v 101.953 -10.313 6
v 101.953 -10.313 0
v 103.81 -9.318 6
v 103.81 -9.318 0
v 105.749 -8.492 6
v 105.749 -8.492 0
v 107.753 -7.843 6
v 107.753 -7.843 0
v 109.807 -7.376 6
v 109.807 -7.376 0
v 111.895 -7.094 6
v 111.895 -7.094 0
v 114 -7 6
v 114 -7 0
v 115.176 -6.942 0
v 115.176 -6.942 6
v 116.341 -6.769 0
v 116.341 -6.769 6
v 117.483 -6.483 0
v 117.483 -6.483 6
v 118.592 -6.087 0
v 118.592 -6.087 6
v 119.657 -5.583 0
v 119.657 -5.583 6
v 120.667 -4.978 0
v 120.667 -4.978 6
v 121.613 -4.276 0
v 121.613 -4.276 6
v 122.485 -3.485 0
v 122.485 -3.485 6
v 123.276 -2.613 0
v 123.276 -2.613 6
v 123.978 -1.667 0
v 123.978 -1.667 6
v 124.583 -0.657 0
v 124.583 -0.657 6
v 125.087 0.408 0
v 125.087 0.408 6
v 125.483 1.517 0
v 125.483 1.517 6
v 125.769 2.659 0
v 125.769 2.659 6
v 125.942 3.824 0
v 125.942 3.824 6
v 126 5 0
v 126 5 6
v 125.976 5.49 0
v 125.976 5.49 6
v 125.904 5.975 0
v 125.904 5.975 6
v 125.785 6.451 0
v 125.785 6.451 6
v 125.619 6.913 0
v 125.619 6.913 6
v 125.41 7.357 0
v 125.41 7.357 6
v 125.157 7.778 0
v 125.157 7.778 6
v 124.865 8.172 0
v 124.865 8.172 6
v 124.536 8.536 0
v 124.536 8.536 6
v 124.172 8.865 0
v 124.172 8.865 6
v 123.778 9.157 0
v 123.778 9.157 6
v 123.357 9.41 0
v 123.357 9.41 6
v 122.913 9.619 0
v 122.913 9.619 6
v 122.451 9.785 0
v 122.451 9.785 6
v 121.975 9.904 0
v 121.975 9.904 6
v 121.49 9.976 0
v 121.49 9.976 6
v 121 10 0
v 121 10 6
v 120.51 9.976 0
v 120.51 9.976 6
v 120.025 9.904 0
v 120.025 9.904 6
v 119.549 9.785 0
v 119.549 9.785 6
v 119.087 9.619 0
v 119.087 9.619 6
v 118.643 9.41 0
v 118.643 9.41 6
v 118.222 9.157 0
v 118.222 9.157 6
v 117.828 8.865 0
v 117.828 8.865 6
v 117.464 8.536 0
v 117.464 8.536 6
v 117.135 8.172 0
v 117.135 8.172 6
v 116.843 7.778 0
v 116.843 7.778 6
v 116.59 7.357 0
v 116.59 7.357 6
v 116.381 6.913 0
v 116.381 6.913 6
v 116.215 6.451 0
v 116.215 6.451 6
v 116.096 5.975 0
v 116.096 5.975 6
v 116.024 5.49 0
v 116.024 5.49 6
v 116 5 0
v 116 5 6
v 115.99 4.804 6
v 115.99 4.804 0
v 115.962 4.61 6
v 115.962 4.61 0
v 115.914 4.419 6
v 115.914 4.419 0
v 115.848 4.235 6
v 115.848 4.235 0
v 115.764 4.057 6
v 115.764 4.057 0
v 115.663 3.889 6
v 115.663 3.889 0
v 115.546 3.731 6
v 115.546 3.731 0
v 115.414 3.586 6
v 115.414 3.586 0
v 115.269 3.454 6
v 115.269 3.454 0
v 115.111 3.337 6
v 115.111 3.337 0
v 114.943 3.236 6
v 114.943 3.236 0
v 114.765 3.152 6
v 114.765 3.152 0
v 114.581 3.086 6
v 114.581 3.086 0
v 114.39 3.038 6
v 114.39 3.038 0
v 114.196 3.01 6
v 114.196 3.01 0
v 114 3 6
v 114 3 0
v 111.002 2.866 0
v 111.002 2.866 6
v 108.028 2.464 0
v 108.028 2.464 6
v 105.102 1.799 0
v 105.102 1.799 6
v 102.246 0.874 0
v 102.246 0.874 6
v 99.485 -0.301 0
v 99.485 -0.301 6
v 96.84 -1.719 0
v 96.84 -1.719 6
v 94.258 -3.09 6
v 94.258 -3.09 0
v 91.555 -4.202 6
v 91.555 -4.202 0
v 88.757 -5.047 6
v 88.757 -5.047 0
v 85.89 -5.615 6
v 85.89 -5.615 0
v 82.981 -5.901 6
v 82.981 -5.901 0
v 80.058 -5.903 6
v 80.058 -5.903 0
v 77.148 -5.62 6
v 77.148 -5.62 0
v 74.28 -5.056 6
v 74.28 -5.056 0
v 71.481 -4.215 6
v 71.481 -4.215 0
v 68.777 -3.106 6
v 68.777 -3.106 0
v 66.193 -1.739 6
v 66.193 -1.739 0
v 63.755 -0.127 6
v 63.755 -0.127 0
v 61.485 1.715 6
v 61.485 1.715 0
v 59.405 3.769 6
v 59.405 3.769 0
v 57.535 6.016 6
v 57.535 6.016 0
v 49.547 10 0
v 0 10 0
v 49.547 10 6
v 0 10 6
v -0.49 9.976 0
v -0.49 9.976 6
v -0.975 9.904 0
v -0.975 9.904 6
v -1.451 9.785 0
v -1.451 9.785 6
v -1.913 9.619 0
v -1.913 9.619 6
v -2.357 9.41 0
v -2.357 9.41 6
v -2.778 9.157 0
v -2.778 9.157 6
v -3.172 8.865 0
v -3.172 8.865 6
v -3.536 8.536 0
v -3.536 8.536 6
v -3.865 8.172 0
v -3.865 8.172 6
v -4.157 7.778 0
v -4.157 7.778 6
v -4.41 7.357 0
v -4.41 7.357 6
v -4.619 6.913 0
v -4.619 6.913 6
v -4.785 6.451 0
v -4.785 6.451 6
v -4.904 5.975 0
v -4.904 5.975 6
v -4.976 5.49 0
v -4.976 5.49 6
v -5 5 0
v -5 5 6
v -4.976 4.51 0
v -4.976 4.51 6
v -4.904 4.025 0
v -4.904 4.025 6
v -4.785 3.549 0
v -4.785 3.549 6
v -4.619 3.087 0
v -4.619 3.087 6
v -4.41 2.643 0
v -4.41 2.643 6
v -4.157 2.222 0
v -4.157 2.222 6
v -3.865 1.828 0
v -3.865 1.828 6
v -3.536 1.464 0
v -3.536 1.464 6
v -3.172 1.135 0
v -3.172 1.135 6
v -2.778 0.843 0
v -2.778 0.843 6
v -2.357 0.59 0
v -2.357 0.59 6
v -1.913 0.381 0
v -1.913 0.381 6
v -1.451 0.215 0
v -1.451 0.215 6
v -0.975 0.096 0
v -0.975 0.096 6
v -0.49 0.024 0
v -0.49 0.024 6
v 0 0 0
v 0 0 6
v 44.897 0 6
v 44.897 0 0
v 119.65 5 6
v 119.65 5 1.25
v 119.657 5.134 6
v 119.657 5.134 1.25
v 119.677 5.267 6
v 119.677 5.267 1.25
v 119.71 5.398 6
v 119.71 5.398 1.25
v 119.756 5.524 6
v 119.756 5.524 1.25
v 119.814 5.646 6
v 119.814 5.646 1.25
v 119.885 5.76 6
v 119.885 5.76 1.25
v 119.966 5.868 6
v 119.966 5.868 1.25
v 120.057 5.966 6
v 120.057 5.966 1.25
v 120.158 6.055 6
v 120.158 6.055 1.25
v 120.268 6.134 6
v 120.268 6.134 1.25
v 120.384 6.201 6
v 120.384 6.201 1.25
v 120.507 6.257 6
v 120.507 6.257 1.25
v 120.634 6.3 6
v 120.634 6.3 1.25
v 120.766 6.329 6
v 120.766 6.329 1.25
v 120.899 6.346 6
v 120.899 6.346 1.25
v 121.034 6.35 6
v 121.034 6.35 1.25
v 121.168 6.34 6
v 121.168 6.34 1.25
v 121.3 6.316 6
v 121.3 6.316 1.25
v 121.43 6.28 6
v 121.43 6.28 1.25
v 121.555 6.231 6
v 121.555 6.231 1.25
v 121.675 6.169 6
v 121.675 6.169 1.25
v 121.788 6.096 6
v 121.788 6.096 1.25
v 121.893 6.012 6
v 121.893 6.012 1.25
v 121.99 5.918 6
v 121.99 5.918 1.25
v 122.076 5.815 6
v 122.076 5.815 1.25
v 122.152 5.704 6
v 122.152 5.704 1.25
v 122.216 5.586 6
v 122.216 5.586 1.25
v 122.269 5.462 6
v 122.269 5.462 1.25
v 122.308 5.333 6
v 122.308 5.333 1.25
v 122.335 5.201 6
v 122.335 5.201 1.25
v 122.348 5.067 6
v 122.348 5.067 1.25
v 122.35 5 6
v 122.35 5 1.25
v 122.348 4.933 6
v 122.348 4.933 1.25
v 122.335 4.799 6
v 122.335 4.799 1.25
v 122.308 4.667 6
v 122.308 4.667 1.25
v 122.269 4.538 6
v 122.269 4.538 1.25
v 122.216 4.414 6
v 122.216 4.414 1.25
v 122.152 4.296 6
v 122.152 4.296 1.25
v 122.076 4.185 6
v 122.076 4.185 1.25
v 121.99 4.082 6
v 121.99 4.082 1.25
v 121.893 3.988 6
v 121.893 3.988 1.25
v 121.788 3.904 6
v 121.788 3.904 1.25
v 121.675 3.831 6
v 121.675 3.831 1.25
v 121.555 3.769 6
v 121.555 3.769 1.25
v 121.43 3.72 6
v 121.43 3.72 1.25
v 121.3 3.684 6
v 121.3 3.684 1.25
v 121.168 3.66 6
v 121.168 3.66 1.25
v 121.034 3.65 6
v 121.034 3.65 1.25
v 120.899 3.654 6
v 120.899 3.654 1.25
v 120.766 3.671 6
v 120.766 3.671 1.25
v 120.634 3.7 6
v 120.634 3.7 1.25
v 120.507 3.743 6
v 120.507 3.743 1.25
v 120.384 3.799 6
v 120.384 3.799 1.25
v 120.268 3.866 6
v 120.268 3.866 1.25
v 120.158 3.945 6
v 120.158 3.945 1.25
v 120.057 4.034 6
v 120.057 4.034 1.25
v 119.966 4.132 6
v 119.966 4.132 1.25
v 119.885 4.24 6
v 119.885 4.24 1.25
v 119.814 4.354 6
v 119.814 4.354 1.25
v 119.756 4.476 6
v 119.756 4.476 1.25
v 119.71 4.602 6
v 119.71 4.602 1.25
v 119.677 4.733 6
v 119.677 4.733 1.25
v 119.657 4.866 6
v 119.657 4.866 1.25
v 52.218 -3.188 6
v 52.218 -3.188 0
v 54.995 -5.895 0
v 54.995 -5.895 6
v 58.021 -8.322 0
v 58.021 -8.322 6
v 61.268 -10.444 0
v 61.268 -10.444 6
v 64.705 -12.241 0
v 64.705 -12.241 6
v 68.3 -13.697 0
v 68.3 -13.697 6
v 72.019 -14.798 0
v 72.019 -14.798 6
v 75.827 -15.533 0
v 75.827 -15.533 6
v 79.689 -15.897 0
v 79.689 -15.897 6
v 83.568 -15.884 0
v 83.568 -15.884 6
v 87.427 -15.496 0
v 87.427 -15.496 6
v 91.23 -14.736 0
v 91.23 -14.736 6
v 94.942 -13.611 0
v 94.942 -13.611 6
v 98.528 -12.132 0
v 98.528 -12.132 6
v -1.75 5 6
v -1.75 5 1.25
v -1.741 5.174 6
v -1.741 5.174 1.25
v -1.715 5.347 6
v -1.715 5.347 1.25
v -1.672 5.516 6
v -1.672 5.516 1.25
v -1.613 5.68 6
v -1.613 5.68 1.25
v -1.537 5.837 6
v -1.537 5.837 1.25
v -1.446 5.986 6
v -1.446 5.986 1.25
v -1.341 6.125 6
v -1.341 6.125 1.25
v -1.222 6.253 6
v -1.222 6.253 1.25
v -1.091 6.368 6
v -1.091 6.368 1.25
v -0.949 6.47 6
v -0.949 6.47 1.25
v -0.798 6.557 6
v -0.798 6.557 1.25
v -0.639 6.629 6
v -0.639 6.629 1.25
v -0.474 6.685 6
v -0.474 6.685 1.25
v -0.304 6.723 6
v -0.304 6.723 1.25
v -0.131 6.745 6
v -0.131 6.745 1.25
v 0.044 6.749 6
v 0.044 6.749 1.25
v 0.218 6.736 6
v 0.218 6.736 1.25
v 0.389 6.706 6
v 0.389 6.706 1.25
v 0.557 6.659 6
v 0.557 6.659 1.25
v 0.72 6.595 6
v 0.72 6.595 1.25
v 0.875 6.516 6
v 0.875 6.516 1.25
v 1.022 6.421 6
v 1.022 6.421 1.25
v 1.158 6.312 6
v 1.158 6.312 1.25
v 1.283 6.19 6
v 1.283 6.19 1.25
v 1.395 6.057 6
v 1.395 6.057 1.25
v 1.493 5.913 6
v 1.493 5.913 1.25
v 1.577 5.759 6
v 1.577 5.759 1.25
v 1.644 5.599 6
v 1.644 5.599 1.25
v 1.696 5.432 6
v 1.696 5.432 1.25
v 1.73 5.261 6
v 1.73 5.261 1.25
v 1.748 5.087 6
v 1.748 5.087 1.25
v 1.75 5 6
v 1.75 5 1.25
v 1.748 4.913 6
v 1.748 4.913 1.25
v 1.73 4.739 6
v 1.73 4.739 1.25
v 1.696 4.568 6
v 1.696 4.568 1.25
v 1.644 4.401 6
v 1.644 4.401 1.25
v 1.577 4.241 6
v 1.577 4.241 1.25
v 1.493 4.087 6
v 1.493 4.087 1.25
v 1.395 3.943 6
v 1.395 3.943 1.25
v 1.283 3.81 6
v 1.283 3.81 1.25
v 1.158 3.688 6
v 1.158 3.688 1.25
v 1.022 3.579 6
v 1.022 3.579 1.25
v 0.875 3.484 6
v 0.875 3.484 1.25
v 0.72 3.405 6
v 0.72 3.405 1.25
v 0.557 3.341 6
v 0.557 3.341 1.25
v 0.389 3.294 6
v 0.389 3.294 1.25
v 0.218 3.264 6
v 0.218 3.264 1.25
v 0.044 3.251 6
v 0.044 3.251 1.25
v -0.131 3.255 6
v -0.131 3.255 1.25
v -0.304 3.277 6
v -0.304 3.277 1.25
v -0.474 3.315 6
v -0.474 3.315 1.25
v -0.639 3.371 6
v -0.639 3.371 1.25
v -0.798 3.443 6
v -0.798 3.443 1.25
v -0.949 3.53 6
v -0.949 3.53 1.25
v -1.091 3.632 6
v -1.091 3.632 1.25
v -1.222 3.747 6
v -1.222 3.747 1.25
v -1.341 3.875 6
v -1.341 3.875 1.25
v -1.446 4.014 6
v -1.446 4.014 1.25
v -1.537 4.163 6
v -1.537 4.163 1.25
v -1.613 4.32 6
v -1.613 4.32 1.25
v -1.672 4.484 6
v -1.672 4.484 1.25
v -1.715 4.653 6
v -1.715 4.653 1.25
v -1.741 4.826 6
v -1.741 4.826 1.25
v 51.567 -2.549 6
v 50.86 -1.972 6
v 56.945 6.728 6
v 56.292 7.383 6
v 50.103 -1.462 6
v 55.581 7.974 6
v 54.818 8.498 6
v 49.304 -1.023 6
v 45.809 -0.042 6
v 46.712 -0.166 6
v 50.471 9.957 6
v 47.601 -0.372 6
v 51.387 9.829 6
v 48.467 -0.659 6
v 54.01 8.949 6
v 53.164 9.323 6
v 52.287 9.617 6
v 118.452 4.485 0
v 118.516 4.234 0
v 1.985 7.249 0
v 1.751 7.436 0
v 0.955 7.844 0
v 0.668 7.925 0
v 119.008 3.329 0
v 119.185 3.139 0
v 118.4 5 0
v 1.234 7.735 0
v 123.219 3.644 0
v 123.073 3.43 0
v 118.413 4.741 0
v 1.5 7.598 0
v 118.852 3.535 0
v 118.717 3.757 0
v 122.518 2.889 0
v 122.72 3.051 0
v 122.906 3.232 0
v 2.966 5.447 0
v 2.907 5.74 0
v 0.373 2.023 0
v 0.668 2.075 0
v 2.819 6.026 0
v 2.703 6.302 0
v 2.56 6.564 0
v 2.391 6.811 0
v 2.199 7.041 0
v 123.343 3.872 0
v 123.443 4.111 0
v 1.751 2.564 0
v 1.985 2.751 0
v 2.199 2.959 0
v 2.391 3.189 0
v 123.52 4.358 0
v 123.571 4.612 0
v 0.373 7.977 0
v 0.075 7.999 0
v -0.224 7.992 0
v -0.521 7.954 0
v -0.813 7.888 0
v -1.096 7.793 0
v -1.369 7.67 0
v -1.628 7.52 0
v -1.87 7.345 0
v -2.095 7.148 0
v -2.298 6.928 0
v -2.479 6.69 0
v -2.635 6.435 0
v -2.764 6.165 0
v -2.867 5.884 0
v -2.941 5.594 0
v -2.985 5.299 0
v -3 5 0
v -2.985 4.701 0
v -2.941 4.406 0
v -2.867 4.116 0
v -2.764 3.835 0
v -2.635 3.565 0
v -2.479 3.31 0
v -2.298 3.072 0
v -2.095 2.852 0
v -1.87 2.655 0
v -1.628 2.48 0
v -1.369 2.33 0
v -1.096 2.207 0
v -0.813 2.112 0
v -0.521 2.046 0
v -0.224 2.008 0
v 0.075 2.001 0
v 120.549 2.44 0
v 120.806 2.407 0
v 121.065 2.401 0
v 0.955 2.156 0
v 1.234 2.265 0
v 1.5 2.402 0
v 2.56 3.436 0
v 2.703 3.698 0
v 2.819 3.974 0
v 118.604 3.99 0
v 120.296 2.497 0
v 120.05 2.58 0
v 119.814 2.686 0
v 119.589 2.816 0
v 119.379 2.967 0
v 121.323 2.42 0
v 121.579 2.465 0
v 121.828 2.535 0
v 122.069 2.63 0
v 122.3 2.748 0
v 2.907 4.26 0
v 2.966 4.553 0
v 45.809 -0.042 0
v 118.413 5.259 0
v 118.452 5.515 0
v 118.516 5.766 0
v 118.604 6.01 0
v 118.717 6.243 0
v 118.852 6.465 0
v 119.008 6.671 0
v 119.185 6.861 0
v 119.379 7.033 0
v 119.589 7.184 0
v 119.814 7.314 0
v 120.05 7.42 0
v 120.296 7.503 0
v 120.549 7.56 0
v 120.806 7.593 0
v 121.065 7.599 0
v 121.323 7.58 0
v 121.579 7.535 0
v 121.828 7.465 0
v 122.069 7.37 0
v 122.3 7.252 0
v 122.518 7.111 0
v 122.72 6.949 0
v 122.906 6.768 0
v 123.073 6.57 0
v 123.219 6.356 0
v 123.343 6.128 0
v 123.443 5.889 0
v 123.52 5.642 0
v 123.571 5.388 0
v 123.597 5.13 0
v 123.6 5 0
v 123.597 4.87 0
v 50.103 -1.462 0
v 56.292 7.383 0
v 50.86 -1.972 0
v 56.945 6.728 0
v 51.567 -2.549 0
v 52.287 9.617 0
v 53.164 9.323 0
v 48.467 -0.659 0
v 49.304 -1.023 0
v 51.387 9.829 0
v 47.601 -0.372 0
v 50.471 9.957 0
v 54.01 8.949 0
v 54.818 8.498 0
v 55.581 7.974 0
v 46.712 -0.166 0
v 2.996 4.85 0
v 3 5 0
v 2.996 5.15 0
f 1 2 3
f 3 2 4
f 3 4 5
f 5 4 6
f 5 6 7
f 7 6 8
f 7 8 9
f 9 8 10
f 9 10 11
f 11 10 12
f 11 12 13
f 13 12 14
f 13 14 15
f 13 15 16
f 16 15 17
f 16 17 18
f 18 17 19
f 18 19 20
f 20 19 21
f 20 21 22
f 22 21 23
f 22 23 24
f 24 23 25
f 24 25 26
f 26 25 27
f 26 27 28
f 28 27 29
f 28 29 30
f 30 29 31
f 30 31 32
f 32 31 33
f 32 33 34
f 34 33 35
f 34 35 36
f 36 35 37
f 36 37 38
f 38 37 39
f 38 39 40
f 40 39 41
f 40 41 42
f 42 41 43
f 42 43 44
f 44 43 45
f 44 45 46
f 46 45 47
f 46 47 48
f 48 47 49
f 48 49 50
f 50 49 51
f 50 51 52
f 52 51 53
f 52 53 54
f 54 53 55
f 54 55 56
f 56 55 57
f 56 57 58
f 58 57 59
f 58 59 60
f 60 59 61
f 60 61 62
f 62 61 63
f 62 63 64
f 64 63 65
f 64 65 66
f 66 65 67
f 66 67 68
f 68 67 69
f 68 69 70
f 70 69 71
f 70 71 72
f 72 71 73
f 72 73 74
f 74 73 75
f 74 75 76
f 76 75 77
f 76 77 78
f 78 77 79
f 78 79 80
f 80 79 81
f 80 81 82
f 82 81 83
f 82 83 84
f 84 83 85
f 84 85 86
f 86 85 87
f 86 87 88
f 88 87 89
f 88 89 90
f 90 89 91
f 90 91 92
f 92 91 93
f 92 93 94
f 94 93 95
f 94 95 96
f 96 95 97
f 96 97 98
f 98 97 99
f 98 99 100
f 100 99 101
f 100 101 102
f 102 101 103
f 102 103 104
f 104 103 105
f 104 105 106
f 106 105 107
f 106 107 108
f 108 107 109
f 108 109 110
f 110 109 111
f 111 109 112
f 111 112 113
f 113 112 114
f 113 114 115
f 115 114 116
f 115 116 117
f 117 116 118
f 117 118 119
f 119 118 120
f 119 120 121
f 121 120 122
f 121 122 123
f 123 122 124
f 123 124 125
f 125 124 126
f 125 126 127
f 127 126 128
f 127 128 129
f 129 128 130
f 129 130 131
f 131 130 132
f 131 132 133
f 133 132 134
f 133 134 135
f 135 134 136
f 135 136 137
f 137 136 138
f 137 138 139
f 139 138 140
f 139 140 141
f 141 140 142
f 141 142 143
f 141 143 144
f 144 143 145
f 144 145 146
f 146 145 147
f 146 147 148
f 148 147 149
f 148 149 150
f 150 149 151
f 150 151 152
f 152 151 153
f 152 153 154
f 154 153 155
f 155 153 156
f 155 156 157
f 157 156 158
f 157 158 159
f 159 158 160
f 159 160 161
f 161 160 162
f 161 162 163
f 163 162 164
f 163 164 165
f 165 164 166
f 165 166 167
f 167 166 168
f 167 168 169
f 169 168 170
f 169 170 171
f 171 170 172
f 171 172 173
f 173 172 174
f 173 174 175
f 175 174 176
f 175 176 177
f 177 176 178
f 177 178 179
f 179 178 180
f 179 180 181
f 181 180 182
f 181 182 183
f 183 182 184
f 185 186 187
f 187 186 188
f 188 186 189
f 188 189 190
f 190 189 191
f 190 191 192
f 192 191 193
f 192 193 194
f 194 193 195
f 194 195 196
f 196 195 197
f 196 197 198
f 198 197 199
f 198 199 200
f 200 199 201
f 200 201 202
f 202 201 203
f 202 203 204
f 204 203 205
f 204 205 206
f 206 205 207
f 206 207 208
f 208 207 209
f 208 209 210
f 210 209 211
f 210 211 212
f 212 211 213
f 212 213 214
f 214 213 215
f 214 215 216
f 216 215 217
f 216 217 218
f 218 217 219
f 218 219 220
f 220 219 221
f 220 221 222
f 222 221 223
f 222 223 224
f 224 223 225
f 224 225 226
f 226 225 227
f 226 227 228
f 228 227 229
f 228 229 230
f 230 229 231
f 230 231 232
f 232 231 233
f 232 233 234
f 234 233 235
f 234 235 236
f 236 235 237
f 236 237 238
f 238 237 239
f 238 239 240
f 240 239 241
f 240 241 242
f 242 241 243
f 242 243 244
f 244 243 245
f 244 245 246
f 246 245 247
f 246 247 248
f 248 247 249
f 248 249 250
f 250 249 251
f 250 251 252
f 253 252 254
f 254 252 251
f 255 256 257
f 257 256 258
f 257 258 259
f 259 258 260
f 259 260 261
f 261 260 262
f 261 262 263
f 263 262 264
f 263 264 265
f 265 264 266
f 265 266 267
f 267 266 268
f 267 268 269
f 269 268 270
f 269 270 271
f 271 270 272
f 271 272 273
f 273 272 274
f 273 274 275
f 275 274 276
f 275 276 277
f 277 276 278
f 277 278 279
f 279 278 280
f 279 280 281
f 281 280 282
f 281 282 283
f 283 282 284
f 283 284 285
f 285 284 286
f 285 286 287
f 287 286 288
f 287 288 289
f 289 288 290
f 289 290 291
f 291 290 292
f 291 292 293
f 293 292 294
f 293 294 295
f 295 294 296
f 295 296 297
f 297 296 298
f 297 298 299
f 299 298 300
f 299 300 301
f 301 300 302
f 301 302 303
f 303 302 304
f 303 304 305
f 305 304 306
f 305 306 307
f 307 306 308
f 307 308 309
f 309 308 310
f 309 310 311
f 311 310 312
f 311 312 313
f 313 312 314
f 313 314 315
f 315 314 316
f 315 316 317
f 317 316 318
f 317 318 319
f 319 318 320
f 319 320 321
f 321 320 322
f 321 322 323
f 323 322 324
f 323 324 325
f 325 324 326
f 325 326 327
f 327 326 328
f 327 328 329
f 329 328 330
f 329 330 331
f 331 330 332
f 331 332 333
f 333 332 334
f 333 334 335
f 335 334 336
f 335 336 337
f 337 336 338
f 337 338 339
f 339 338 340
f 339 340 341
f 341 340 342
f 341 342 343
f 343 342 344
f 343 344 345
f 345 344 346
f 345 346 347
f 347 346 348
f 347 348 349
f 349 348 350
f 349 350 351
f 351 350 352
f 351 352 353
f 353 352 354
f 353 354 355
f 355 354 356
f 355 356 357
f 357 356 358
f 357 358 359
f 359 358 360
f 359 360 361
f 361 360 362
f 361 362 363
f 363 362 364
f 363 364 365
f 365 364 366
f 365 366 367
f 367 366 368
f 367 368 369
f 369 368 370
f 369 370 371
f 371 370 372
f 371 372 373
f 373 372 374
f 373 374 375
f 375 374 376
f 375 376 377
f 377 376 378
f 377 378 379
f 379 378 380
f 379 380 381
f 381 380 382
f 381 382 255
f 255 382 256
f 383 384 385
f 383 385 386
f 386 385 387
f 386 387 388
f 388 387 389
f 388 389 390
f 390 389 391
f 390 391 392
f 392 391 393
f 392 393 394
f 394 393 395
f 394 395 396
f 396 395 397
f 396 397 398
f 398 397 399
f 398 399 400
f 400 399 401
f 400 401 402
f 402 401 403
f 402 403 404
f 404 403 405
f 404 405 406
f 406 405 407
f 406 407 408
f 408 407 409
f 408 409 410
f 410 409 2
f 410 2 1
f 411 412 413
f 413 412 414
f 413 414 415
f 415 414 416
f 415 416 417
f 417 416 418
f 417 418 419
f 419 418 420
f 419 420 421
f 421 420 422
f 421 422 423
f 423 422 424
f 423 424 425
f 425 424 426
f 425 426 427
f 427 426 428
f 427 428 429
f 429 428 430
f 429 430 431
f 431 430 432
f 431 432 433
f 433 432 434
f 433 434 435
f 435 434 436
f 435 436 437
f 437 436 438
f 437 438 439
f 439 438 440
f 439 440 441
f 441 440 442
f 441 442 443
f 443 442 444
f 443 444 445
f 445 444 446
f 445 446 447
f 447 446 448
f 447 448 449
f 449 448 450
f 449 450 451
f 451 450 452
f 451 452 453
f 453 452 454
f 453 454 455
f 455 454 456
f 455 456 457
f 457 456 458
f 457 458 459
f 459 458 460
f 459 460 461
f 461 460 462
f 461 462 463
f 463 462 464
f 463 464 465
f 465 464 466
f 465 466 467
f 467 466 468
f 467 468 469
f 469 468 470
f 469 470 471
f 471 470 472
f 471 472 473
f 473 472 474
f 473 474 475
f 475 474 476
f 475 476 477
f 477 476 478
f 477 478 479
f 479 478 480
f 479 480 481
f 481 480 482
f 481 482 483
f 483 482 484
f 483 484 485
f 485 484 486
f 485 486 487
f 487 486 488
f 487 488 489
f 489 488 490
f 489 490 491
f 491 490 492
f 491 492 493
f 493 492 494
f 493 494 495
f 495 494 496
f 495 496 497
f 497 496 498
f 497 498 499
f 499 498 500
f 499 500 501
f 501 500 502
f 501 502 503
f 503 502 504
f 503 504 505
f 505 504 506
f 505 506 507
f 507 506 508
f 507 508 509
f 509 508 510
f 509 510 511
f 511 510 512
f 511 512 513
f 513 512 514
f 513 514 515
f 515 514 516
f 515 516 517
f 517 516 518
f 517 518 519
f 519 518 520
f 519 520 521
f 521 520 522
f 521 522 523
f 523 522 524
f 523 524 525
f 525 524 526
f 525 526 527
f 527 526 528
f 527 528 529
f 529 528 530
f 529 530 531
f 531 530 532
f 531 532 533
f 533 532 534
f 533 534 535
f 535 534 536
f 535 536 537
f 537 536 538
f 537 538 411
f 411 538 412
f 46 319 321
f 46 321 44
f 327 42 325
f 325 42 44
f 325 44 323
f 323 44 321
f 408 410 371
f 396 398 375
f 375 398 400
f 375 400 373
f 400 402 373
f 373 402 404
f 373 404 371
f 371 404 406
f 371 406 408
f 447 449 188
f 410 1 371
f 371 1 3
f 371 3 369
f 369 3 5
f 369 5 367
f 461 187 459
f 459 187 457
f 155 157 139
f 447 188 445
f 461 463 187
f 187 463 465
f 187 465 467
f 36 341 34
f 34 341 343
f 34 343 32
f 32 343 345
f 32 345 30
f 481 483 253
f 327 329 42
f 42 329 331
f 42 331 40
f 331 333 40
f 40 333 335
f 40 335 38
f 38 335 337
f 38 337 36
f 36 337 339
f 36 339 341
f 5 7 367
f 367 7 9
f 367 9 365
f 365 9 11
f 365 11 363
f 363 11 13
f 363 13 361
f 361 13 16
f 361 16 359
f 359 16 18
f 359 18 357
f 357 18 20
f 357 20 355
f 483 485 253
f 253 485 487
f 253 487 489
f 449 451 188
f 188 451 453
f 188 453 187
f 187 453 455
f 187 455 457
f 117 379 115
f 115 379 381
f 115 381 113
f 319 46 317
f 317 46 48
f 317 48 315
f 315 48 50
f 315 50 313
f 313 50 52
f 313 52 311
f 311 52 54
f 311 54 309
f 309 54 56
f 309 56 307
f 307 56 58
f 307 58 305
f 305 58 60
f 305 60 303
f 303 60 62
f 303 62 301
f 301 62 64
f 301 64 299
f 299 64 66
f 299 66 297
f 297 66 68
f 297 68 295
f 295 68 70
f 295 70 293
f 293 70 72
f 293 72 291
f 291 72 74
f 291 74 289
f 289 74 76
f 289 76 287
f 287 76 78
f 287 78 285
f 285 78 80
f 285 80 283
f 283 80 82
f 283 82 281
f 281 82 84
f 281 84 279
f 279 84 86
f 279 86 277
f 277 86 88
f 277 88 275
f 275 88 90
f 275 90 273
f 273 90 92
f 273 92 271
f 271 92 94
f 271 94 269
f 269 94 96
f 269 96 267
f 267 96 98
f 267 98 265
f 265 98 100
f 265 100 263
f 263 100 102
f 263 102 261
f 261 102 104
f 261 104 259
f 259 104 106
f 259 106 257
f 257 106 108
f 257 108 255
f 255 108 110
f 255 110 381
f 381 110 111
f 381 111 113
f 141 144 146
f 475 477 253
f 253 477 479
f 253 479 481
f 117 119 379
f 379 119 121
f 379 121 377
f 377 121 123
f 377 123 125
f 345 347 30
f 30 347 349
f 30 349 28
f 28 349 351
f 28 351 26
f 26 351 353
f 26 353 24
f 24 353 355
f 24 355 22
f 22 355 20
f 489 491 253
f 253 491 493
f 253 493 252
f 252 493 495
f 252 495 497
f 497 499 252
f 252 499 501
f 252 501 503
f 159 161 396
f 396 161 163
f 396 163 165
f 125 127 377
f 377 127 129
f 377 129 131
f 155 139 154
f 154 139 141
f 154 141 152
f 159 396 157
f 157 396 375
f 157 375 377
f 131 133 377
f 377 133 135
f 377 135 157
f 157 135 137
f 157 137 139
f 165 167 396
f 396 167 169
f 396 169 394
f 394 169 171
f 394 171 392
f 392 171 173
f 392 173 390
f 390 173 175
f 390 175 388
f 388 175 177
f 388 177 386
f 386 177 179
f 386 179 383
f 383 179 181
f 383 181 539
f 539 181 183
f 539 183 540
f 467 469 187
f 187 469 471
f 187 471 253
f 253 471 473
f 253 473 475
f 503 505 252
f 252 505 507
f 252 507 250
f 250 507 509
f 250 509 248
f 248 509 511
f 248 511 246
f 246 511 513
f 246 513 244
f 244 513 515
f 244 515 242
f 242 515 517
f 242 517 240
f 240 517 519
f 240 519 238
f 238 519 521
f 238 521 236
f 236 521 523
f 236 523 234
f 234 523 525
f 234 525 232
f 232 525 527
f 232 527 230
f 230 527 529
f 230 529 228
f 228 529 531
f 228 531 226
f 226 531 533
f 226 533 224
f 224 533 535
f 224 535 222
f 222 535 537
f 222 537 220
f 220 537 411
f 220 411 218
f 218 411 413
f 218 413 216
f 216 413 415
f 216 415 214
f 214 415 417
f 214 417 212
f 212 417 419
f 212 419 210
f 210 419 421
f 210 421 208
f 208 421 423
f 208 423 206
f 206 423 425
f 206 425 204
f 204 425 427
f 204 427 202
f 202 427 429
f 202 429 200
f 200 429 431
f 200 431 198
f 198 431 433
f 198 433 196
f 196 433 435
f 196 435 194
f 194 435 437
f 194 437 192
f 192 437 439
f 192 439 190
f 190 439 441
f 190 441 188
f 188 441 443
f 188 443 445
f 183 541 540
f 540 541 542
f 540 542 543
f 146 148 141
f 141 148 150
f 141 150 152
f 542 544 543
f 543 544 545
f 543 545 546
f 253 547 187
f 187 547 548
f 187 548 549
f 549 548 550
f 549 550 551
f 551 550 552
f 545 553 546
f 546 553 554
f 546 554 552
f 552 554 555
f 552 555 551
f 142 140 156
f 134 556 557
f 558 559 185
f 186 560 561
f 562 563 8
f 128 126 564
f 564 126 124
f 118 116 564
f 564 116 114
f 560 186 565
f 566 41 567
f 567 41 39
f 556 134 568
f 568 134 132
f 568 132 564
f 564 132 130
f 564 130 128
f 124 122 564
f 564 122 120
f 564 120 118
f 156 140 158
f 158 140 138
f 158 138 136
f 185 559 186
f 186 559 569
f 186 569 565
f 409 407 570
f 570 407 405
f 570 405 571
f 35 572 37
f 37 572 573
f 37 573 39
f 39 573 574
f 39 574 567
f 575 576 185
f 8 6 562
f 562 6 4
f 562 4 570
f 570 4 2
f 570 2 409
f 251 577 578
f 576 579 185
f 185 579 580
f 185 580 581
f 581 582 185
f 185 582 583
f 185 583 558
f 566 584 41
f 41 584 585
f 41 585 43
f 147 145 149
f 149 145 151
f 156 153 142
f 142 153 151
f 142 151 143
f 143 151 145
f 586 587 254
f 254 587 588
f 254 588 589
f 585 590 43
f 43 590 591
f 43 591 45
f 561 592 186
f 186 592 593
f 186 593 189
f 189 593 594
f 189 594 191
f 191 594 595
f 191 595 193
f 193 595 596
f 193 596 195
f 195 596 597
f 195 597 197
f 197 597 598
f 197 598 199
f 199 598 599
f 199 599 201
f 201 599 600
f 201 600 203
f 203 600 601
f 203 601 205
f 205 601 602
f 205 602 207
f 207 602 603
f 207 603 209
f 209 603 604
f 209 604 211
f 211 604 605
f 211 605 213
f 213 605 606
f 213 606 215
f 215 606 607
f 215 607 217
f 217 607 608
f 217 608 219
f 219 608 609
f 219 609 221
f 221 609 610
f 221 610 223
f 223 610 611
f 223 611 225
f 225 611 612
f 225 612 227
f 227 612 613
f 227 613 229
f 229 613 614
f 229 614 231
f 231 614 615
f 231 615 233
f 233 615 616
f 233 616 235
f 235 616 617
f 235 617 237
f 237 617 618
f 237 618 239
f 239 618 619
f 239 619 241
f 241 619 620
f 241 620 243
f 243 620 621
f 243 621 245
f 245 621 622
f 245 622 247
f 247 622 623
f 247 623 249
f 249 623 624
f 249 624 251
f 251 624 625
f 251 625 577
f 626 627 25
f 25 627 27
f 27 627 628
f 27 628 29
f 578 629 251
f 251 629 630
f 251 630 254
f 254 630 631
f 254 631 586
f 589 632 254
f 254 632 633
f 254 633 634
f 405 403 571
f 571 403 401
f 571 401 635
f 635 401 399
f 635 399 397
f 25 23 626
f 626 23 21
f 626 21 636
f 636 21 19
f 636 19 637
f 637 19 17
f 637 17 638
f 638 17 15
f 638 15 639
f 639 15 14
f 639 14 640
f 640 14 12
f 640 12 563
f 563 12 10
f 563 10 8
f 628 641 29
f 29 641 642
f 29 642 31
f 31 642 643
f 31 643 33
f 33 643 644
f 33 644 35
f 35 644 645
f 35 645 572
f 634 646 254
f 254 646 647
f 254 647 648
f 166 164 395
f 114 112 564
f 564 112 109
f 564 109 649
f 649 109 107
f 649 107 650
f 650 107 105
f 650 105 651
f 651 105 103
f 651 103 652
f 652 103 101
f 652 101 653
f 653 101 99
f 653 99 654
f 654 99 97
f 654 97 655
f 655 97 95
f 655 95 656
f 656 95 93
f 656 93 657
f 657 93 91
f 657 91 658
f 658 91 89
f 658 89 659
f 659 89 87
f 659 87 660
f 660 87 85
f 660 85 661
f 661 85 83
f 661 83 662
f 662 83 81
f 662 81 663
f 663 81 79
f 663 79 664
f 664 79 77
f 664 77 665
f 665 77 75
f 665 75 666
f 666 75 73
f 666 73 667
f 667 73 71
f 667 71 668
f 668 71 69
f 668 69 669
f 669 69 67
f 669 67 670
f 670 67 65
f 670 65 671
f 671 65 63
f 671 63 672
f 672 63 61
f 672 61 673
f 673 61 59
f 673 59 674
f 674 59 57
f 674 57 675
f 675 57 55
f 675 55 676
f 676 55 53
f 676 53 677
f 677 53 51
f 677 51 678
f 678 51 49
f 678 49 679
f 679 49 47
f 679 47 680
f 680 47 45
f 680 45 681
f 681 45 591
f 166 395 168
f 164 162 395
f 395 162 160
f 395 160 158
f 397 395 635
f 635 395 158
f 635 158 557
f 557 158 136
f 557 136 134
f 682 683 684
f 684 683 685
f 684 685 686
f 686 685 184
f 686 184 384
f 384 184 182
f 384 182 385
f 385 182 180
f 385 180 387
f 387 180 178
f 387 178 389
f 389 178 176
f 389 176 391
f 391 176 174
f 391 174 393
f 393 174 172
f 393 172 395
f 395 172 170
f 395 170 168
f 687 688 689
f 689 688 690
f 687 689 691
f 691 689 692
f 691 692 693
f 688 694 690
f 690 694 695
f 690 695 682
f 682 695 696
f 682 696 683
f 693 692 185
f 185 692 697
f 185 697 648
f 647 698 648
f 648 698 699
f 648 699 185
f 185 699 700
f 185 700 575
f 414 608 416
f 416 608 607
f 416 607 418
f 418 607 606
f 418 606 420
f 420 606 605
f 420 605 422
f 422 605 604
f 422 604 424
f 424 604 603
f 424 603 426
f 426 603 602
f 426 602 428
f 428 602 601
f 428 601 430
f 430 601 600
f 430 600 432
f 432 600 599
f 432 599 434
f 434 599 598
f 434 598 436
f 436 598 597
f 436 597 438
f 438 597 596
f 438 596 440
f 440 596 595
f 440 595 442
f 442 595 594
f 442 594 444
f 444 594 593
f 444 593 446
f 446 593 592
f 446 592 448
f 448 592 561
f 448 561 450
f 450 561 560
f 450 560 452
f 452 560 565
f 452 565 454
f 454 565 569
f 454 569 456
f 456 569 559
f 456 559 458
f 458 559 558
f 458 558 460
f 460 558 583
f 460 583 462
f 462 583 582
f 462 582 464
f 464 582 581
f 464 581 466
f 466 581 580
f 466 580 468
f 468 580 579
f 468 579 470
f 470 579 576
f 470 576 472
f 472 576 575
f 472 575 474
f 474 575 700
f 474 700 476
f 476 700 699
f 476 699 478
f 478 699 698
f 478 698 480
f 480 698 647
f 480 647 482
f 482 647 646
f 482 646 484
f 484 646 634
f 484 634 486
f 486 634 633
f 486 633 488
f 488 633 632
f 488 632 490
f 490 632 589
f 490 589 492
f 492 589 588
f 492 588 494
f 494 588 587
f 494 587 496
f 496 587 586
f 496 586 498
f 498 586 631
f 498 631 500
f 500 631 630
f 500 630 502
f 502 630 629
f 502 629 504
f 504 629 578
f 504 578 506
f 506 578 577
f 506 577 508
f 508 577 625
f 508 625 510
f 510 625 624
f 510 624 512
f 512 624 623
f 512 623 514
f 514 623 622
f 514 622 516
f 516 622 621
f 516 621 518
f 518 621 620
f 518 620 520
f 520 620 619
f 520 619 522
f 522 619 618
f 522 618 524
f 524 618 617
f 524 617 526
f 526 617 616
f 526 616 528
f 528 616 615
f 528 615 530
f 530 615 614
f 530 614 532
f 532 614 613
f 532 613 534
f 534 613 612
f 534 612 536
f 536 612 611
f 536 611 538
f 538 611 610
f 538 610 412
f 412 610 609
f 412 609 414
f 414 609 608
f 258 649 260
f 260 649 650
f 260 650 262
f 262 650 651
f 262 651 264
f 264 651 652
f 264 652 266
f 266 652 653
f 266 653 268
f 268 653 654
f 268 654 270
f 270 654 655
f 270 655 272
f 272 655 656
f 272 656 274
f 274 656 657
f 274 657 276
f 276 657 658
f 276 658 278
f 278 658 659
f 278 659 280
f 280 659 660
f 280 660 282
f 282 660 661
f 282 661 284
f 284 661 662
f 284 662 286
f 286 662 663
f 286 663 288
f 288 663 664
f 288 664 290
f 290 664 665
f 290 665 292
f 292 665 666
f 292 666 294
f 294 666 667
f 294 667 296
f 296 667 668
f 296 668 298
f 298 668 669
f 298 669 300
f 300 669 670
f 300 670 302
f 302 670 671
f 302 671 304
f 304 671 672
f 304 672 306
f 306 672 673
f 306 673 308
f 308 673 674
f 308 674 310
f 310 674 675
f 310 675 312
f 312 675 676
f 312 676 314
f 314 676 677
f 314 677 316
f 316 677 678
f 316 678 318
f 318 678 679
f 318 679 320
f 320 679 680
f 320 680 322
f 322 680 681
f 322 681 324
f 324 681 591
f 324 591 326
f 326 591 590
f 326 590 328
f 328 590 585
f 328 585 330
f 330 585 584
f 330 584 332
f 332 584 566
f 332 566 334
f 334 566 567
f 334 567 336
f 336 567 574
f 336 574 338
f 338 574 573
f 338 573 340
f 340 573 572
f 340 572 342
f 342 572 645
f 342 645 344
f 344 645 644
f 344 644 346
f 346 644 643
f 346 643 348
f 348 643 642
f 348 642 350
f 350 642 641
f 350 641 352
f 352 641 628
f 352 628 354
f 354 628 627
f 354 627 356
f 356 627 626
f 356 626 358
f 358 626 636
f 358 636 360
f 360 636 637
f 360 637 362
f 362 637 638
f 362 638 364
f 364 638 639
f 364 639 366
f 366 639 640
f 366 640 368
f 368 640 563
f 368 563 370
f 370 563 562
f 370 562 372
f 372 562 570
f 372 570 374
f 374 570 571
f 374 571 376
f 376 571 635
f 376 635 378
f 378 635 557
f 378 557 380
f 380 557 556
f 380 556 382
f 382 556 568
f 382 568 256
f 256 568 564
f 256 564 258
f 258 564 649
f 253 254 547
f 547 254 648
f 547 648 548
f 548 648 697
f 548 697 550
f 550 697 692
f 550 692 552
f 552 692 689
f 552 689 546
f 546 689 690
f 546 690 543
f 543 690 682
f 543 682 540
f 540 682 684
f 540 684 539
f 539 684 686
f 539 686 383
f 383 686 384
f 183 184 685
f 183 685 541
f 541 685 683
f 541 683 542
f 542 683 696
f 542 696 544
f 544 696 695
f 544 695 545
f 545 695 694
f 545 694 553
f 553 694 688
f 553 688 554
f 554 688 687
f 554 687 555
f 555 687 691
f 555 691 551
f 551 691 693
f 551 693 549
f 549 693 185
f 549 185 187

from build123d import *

# Parameters (mm, degrees)
ESQUISSE1_R        = 1.75
ESQUISSE1_R_2      = 1.35
BOSS_EXTRU_1_DEPTH = 6
CHANFREIN1_SIZE    = 1.25
CONG_1_R           = 10


with BuildPart() as part:
    # Esquisse1 → Boss.-Extru.1 (new body)
    with BuildSketch(Plane.XY):
        with BuildLine():
            Line((0, 0), (49.546865916, 0))
            ThreePointArc((49.546865916, 0), (73.776718043, -15.184943457), (101.953496658, -10.312840336))
            ThreePointArc((101.953496658, -10.312840336), (107.75313821, -7.843303604), (114.000000849, -7))
            ThreePointArc((114.000000849, -7), (122.485281675, -3.485281074), (126, 5))
            ThreePointArc((126, 5), (124.535533906, 8.535533906), (121, 10))
            ThreePointArc((121, 10), (117.464466094, 8.535533906), (116, 5))
            ThreePointArc((116, 5), (115.414213863, 3.585786738), (114.000000849, 3))
            ThreePointArc((114.000000849, 3), (105.101532849, 1.798737416), (96.840117389, -1.719043012))
            ThreePointArc((96.840117389, -1.719043012), (73.408662827, -4.825876336), (55, 10))
            Line((55, 10), (0, 10))
            ThreePointArc((0, 10), (-5, 5), (0, 0))
        make_face()
        with Locations((0, 5)):
            Circle(ESQUISSE1_R, mode=Mode.SUBTRACT)
        with Locations((121, 5)):
            Circle(ESQUISSE1_R_2, mode=Mode.SUBTRACT)
    extrude(amount=BOSS_EXTRU_1_DEPTH)

    # Chanfrein1
    chanfrein1_edges = [part.edges().sort_by_distance(p)[0] for p in [
        (-1.75, 5, 0),
        (119.65, 5, 0),
    ]]
    chamfer(chanfrein1_edges, length=CHANFREIN1_SIZE)

    # Congé1
    cong_1_edges = [part.edges().sort_by_distance(p)[0] for p in [
        (49.546865916, 0, 3),
        (55, 10, 3),
    ]]
    fillet(cong_1_edges, radius=CONG_1_R)


solid = part.part
